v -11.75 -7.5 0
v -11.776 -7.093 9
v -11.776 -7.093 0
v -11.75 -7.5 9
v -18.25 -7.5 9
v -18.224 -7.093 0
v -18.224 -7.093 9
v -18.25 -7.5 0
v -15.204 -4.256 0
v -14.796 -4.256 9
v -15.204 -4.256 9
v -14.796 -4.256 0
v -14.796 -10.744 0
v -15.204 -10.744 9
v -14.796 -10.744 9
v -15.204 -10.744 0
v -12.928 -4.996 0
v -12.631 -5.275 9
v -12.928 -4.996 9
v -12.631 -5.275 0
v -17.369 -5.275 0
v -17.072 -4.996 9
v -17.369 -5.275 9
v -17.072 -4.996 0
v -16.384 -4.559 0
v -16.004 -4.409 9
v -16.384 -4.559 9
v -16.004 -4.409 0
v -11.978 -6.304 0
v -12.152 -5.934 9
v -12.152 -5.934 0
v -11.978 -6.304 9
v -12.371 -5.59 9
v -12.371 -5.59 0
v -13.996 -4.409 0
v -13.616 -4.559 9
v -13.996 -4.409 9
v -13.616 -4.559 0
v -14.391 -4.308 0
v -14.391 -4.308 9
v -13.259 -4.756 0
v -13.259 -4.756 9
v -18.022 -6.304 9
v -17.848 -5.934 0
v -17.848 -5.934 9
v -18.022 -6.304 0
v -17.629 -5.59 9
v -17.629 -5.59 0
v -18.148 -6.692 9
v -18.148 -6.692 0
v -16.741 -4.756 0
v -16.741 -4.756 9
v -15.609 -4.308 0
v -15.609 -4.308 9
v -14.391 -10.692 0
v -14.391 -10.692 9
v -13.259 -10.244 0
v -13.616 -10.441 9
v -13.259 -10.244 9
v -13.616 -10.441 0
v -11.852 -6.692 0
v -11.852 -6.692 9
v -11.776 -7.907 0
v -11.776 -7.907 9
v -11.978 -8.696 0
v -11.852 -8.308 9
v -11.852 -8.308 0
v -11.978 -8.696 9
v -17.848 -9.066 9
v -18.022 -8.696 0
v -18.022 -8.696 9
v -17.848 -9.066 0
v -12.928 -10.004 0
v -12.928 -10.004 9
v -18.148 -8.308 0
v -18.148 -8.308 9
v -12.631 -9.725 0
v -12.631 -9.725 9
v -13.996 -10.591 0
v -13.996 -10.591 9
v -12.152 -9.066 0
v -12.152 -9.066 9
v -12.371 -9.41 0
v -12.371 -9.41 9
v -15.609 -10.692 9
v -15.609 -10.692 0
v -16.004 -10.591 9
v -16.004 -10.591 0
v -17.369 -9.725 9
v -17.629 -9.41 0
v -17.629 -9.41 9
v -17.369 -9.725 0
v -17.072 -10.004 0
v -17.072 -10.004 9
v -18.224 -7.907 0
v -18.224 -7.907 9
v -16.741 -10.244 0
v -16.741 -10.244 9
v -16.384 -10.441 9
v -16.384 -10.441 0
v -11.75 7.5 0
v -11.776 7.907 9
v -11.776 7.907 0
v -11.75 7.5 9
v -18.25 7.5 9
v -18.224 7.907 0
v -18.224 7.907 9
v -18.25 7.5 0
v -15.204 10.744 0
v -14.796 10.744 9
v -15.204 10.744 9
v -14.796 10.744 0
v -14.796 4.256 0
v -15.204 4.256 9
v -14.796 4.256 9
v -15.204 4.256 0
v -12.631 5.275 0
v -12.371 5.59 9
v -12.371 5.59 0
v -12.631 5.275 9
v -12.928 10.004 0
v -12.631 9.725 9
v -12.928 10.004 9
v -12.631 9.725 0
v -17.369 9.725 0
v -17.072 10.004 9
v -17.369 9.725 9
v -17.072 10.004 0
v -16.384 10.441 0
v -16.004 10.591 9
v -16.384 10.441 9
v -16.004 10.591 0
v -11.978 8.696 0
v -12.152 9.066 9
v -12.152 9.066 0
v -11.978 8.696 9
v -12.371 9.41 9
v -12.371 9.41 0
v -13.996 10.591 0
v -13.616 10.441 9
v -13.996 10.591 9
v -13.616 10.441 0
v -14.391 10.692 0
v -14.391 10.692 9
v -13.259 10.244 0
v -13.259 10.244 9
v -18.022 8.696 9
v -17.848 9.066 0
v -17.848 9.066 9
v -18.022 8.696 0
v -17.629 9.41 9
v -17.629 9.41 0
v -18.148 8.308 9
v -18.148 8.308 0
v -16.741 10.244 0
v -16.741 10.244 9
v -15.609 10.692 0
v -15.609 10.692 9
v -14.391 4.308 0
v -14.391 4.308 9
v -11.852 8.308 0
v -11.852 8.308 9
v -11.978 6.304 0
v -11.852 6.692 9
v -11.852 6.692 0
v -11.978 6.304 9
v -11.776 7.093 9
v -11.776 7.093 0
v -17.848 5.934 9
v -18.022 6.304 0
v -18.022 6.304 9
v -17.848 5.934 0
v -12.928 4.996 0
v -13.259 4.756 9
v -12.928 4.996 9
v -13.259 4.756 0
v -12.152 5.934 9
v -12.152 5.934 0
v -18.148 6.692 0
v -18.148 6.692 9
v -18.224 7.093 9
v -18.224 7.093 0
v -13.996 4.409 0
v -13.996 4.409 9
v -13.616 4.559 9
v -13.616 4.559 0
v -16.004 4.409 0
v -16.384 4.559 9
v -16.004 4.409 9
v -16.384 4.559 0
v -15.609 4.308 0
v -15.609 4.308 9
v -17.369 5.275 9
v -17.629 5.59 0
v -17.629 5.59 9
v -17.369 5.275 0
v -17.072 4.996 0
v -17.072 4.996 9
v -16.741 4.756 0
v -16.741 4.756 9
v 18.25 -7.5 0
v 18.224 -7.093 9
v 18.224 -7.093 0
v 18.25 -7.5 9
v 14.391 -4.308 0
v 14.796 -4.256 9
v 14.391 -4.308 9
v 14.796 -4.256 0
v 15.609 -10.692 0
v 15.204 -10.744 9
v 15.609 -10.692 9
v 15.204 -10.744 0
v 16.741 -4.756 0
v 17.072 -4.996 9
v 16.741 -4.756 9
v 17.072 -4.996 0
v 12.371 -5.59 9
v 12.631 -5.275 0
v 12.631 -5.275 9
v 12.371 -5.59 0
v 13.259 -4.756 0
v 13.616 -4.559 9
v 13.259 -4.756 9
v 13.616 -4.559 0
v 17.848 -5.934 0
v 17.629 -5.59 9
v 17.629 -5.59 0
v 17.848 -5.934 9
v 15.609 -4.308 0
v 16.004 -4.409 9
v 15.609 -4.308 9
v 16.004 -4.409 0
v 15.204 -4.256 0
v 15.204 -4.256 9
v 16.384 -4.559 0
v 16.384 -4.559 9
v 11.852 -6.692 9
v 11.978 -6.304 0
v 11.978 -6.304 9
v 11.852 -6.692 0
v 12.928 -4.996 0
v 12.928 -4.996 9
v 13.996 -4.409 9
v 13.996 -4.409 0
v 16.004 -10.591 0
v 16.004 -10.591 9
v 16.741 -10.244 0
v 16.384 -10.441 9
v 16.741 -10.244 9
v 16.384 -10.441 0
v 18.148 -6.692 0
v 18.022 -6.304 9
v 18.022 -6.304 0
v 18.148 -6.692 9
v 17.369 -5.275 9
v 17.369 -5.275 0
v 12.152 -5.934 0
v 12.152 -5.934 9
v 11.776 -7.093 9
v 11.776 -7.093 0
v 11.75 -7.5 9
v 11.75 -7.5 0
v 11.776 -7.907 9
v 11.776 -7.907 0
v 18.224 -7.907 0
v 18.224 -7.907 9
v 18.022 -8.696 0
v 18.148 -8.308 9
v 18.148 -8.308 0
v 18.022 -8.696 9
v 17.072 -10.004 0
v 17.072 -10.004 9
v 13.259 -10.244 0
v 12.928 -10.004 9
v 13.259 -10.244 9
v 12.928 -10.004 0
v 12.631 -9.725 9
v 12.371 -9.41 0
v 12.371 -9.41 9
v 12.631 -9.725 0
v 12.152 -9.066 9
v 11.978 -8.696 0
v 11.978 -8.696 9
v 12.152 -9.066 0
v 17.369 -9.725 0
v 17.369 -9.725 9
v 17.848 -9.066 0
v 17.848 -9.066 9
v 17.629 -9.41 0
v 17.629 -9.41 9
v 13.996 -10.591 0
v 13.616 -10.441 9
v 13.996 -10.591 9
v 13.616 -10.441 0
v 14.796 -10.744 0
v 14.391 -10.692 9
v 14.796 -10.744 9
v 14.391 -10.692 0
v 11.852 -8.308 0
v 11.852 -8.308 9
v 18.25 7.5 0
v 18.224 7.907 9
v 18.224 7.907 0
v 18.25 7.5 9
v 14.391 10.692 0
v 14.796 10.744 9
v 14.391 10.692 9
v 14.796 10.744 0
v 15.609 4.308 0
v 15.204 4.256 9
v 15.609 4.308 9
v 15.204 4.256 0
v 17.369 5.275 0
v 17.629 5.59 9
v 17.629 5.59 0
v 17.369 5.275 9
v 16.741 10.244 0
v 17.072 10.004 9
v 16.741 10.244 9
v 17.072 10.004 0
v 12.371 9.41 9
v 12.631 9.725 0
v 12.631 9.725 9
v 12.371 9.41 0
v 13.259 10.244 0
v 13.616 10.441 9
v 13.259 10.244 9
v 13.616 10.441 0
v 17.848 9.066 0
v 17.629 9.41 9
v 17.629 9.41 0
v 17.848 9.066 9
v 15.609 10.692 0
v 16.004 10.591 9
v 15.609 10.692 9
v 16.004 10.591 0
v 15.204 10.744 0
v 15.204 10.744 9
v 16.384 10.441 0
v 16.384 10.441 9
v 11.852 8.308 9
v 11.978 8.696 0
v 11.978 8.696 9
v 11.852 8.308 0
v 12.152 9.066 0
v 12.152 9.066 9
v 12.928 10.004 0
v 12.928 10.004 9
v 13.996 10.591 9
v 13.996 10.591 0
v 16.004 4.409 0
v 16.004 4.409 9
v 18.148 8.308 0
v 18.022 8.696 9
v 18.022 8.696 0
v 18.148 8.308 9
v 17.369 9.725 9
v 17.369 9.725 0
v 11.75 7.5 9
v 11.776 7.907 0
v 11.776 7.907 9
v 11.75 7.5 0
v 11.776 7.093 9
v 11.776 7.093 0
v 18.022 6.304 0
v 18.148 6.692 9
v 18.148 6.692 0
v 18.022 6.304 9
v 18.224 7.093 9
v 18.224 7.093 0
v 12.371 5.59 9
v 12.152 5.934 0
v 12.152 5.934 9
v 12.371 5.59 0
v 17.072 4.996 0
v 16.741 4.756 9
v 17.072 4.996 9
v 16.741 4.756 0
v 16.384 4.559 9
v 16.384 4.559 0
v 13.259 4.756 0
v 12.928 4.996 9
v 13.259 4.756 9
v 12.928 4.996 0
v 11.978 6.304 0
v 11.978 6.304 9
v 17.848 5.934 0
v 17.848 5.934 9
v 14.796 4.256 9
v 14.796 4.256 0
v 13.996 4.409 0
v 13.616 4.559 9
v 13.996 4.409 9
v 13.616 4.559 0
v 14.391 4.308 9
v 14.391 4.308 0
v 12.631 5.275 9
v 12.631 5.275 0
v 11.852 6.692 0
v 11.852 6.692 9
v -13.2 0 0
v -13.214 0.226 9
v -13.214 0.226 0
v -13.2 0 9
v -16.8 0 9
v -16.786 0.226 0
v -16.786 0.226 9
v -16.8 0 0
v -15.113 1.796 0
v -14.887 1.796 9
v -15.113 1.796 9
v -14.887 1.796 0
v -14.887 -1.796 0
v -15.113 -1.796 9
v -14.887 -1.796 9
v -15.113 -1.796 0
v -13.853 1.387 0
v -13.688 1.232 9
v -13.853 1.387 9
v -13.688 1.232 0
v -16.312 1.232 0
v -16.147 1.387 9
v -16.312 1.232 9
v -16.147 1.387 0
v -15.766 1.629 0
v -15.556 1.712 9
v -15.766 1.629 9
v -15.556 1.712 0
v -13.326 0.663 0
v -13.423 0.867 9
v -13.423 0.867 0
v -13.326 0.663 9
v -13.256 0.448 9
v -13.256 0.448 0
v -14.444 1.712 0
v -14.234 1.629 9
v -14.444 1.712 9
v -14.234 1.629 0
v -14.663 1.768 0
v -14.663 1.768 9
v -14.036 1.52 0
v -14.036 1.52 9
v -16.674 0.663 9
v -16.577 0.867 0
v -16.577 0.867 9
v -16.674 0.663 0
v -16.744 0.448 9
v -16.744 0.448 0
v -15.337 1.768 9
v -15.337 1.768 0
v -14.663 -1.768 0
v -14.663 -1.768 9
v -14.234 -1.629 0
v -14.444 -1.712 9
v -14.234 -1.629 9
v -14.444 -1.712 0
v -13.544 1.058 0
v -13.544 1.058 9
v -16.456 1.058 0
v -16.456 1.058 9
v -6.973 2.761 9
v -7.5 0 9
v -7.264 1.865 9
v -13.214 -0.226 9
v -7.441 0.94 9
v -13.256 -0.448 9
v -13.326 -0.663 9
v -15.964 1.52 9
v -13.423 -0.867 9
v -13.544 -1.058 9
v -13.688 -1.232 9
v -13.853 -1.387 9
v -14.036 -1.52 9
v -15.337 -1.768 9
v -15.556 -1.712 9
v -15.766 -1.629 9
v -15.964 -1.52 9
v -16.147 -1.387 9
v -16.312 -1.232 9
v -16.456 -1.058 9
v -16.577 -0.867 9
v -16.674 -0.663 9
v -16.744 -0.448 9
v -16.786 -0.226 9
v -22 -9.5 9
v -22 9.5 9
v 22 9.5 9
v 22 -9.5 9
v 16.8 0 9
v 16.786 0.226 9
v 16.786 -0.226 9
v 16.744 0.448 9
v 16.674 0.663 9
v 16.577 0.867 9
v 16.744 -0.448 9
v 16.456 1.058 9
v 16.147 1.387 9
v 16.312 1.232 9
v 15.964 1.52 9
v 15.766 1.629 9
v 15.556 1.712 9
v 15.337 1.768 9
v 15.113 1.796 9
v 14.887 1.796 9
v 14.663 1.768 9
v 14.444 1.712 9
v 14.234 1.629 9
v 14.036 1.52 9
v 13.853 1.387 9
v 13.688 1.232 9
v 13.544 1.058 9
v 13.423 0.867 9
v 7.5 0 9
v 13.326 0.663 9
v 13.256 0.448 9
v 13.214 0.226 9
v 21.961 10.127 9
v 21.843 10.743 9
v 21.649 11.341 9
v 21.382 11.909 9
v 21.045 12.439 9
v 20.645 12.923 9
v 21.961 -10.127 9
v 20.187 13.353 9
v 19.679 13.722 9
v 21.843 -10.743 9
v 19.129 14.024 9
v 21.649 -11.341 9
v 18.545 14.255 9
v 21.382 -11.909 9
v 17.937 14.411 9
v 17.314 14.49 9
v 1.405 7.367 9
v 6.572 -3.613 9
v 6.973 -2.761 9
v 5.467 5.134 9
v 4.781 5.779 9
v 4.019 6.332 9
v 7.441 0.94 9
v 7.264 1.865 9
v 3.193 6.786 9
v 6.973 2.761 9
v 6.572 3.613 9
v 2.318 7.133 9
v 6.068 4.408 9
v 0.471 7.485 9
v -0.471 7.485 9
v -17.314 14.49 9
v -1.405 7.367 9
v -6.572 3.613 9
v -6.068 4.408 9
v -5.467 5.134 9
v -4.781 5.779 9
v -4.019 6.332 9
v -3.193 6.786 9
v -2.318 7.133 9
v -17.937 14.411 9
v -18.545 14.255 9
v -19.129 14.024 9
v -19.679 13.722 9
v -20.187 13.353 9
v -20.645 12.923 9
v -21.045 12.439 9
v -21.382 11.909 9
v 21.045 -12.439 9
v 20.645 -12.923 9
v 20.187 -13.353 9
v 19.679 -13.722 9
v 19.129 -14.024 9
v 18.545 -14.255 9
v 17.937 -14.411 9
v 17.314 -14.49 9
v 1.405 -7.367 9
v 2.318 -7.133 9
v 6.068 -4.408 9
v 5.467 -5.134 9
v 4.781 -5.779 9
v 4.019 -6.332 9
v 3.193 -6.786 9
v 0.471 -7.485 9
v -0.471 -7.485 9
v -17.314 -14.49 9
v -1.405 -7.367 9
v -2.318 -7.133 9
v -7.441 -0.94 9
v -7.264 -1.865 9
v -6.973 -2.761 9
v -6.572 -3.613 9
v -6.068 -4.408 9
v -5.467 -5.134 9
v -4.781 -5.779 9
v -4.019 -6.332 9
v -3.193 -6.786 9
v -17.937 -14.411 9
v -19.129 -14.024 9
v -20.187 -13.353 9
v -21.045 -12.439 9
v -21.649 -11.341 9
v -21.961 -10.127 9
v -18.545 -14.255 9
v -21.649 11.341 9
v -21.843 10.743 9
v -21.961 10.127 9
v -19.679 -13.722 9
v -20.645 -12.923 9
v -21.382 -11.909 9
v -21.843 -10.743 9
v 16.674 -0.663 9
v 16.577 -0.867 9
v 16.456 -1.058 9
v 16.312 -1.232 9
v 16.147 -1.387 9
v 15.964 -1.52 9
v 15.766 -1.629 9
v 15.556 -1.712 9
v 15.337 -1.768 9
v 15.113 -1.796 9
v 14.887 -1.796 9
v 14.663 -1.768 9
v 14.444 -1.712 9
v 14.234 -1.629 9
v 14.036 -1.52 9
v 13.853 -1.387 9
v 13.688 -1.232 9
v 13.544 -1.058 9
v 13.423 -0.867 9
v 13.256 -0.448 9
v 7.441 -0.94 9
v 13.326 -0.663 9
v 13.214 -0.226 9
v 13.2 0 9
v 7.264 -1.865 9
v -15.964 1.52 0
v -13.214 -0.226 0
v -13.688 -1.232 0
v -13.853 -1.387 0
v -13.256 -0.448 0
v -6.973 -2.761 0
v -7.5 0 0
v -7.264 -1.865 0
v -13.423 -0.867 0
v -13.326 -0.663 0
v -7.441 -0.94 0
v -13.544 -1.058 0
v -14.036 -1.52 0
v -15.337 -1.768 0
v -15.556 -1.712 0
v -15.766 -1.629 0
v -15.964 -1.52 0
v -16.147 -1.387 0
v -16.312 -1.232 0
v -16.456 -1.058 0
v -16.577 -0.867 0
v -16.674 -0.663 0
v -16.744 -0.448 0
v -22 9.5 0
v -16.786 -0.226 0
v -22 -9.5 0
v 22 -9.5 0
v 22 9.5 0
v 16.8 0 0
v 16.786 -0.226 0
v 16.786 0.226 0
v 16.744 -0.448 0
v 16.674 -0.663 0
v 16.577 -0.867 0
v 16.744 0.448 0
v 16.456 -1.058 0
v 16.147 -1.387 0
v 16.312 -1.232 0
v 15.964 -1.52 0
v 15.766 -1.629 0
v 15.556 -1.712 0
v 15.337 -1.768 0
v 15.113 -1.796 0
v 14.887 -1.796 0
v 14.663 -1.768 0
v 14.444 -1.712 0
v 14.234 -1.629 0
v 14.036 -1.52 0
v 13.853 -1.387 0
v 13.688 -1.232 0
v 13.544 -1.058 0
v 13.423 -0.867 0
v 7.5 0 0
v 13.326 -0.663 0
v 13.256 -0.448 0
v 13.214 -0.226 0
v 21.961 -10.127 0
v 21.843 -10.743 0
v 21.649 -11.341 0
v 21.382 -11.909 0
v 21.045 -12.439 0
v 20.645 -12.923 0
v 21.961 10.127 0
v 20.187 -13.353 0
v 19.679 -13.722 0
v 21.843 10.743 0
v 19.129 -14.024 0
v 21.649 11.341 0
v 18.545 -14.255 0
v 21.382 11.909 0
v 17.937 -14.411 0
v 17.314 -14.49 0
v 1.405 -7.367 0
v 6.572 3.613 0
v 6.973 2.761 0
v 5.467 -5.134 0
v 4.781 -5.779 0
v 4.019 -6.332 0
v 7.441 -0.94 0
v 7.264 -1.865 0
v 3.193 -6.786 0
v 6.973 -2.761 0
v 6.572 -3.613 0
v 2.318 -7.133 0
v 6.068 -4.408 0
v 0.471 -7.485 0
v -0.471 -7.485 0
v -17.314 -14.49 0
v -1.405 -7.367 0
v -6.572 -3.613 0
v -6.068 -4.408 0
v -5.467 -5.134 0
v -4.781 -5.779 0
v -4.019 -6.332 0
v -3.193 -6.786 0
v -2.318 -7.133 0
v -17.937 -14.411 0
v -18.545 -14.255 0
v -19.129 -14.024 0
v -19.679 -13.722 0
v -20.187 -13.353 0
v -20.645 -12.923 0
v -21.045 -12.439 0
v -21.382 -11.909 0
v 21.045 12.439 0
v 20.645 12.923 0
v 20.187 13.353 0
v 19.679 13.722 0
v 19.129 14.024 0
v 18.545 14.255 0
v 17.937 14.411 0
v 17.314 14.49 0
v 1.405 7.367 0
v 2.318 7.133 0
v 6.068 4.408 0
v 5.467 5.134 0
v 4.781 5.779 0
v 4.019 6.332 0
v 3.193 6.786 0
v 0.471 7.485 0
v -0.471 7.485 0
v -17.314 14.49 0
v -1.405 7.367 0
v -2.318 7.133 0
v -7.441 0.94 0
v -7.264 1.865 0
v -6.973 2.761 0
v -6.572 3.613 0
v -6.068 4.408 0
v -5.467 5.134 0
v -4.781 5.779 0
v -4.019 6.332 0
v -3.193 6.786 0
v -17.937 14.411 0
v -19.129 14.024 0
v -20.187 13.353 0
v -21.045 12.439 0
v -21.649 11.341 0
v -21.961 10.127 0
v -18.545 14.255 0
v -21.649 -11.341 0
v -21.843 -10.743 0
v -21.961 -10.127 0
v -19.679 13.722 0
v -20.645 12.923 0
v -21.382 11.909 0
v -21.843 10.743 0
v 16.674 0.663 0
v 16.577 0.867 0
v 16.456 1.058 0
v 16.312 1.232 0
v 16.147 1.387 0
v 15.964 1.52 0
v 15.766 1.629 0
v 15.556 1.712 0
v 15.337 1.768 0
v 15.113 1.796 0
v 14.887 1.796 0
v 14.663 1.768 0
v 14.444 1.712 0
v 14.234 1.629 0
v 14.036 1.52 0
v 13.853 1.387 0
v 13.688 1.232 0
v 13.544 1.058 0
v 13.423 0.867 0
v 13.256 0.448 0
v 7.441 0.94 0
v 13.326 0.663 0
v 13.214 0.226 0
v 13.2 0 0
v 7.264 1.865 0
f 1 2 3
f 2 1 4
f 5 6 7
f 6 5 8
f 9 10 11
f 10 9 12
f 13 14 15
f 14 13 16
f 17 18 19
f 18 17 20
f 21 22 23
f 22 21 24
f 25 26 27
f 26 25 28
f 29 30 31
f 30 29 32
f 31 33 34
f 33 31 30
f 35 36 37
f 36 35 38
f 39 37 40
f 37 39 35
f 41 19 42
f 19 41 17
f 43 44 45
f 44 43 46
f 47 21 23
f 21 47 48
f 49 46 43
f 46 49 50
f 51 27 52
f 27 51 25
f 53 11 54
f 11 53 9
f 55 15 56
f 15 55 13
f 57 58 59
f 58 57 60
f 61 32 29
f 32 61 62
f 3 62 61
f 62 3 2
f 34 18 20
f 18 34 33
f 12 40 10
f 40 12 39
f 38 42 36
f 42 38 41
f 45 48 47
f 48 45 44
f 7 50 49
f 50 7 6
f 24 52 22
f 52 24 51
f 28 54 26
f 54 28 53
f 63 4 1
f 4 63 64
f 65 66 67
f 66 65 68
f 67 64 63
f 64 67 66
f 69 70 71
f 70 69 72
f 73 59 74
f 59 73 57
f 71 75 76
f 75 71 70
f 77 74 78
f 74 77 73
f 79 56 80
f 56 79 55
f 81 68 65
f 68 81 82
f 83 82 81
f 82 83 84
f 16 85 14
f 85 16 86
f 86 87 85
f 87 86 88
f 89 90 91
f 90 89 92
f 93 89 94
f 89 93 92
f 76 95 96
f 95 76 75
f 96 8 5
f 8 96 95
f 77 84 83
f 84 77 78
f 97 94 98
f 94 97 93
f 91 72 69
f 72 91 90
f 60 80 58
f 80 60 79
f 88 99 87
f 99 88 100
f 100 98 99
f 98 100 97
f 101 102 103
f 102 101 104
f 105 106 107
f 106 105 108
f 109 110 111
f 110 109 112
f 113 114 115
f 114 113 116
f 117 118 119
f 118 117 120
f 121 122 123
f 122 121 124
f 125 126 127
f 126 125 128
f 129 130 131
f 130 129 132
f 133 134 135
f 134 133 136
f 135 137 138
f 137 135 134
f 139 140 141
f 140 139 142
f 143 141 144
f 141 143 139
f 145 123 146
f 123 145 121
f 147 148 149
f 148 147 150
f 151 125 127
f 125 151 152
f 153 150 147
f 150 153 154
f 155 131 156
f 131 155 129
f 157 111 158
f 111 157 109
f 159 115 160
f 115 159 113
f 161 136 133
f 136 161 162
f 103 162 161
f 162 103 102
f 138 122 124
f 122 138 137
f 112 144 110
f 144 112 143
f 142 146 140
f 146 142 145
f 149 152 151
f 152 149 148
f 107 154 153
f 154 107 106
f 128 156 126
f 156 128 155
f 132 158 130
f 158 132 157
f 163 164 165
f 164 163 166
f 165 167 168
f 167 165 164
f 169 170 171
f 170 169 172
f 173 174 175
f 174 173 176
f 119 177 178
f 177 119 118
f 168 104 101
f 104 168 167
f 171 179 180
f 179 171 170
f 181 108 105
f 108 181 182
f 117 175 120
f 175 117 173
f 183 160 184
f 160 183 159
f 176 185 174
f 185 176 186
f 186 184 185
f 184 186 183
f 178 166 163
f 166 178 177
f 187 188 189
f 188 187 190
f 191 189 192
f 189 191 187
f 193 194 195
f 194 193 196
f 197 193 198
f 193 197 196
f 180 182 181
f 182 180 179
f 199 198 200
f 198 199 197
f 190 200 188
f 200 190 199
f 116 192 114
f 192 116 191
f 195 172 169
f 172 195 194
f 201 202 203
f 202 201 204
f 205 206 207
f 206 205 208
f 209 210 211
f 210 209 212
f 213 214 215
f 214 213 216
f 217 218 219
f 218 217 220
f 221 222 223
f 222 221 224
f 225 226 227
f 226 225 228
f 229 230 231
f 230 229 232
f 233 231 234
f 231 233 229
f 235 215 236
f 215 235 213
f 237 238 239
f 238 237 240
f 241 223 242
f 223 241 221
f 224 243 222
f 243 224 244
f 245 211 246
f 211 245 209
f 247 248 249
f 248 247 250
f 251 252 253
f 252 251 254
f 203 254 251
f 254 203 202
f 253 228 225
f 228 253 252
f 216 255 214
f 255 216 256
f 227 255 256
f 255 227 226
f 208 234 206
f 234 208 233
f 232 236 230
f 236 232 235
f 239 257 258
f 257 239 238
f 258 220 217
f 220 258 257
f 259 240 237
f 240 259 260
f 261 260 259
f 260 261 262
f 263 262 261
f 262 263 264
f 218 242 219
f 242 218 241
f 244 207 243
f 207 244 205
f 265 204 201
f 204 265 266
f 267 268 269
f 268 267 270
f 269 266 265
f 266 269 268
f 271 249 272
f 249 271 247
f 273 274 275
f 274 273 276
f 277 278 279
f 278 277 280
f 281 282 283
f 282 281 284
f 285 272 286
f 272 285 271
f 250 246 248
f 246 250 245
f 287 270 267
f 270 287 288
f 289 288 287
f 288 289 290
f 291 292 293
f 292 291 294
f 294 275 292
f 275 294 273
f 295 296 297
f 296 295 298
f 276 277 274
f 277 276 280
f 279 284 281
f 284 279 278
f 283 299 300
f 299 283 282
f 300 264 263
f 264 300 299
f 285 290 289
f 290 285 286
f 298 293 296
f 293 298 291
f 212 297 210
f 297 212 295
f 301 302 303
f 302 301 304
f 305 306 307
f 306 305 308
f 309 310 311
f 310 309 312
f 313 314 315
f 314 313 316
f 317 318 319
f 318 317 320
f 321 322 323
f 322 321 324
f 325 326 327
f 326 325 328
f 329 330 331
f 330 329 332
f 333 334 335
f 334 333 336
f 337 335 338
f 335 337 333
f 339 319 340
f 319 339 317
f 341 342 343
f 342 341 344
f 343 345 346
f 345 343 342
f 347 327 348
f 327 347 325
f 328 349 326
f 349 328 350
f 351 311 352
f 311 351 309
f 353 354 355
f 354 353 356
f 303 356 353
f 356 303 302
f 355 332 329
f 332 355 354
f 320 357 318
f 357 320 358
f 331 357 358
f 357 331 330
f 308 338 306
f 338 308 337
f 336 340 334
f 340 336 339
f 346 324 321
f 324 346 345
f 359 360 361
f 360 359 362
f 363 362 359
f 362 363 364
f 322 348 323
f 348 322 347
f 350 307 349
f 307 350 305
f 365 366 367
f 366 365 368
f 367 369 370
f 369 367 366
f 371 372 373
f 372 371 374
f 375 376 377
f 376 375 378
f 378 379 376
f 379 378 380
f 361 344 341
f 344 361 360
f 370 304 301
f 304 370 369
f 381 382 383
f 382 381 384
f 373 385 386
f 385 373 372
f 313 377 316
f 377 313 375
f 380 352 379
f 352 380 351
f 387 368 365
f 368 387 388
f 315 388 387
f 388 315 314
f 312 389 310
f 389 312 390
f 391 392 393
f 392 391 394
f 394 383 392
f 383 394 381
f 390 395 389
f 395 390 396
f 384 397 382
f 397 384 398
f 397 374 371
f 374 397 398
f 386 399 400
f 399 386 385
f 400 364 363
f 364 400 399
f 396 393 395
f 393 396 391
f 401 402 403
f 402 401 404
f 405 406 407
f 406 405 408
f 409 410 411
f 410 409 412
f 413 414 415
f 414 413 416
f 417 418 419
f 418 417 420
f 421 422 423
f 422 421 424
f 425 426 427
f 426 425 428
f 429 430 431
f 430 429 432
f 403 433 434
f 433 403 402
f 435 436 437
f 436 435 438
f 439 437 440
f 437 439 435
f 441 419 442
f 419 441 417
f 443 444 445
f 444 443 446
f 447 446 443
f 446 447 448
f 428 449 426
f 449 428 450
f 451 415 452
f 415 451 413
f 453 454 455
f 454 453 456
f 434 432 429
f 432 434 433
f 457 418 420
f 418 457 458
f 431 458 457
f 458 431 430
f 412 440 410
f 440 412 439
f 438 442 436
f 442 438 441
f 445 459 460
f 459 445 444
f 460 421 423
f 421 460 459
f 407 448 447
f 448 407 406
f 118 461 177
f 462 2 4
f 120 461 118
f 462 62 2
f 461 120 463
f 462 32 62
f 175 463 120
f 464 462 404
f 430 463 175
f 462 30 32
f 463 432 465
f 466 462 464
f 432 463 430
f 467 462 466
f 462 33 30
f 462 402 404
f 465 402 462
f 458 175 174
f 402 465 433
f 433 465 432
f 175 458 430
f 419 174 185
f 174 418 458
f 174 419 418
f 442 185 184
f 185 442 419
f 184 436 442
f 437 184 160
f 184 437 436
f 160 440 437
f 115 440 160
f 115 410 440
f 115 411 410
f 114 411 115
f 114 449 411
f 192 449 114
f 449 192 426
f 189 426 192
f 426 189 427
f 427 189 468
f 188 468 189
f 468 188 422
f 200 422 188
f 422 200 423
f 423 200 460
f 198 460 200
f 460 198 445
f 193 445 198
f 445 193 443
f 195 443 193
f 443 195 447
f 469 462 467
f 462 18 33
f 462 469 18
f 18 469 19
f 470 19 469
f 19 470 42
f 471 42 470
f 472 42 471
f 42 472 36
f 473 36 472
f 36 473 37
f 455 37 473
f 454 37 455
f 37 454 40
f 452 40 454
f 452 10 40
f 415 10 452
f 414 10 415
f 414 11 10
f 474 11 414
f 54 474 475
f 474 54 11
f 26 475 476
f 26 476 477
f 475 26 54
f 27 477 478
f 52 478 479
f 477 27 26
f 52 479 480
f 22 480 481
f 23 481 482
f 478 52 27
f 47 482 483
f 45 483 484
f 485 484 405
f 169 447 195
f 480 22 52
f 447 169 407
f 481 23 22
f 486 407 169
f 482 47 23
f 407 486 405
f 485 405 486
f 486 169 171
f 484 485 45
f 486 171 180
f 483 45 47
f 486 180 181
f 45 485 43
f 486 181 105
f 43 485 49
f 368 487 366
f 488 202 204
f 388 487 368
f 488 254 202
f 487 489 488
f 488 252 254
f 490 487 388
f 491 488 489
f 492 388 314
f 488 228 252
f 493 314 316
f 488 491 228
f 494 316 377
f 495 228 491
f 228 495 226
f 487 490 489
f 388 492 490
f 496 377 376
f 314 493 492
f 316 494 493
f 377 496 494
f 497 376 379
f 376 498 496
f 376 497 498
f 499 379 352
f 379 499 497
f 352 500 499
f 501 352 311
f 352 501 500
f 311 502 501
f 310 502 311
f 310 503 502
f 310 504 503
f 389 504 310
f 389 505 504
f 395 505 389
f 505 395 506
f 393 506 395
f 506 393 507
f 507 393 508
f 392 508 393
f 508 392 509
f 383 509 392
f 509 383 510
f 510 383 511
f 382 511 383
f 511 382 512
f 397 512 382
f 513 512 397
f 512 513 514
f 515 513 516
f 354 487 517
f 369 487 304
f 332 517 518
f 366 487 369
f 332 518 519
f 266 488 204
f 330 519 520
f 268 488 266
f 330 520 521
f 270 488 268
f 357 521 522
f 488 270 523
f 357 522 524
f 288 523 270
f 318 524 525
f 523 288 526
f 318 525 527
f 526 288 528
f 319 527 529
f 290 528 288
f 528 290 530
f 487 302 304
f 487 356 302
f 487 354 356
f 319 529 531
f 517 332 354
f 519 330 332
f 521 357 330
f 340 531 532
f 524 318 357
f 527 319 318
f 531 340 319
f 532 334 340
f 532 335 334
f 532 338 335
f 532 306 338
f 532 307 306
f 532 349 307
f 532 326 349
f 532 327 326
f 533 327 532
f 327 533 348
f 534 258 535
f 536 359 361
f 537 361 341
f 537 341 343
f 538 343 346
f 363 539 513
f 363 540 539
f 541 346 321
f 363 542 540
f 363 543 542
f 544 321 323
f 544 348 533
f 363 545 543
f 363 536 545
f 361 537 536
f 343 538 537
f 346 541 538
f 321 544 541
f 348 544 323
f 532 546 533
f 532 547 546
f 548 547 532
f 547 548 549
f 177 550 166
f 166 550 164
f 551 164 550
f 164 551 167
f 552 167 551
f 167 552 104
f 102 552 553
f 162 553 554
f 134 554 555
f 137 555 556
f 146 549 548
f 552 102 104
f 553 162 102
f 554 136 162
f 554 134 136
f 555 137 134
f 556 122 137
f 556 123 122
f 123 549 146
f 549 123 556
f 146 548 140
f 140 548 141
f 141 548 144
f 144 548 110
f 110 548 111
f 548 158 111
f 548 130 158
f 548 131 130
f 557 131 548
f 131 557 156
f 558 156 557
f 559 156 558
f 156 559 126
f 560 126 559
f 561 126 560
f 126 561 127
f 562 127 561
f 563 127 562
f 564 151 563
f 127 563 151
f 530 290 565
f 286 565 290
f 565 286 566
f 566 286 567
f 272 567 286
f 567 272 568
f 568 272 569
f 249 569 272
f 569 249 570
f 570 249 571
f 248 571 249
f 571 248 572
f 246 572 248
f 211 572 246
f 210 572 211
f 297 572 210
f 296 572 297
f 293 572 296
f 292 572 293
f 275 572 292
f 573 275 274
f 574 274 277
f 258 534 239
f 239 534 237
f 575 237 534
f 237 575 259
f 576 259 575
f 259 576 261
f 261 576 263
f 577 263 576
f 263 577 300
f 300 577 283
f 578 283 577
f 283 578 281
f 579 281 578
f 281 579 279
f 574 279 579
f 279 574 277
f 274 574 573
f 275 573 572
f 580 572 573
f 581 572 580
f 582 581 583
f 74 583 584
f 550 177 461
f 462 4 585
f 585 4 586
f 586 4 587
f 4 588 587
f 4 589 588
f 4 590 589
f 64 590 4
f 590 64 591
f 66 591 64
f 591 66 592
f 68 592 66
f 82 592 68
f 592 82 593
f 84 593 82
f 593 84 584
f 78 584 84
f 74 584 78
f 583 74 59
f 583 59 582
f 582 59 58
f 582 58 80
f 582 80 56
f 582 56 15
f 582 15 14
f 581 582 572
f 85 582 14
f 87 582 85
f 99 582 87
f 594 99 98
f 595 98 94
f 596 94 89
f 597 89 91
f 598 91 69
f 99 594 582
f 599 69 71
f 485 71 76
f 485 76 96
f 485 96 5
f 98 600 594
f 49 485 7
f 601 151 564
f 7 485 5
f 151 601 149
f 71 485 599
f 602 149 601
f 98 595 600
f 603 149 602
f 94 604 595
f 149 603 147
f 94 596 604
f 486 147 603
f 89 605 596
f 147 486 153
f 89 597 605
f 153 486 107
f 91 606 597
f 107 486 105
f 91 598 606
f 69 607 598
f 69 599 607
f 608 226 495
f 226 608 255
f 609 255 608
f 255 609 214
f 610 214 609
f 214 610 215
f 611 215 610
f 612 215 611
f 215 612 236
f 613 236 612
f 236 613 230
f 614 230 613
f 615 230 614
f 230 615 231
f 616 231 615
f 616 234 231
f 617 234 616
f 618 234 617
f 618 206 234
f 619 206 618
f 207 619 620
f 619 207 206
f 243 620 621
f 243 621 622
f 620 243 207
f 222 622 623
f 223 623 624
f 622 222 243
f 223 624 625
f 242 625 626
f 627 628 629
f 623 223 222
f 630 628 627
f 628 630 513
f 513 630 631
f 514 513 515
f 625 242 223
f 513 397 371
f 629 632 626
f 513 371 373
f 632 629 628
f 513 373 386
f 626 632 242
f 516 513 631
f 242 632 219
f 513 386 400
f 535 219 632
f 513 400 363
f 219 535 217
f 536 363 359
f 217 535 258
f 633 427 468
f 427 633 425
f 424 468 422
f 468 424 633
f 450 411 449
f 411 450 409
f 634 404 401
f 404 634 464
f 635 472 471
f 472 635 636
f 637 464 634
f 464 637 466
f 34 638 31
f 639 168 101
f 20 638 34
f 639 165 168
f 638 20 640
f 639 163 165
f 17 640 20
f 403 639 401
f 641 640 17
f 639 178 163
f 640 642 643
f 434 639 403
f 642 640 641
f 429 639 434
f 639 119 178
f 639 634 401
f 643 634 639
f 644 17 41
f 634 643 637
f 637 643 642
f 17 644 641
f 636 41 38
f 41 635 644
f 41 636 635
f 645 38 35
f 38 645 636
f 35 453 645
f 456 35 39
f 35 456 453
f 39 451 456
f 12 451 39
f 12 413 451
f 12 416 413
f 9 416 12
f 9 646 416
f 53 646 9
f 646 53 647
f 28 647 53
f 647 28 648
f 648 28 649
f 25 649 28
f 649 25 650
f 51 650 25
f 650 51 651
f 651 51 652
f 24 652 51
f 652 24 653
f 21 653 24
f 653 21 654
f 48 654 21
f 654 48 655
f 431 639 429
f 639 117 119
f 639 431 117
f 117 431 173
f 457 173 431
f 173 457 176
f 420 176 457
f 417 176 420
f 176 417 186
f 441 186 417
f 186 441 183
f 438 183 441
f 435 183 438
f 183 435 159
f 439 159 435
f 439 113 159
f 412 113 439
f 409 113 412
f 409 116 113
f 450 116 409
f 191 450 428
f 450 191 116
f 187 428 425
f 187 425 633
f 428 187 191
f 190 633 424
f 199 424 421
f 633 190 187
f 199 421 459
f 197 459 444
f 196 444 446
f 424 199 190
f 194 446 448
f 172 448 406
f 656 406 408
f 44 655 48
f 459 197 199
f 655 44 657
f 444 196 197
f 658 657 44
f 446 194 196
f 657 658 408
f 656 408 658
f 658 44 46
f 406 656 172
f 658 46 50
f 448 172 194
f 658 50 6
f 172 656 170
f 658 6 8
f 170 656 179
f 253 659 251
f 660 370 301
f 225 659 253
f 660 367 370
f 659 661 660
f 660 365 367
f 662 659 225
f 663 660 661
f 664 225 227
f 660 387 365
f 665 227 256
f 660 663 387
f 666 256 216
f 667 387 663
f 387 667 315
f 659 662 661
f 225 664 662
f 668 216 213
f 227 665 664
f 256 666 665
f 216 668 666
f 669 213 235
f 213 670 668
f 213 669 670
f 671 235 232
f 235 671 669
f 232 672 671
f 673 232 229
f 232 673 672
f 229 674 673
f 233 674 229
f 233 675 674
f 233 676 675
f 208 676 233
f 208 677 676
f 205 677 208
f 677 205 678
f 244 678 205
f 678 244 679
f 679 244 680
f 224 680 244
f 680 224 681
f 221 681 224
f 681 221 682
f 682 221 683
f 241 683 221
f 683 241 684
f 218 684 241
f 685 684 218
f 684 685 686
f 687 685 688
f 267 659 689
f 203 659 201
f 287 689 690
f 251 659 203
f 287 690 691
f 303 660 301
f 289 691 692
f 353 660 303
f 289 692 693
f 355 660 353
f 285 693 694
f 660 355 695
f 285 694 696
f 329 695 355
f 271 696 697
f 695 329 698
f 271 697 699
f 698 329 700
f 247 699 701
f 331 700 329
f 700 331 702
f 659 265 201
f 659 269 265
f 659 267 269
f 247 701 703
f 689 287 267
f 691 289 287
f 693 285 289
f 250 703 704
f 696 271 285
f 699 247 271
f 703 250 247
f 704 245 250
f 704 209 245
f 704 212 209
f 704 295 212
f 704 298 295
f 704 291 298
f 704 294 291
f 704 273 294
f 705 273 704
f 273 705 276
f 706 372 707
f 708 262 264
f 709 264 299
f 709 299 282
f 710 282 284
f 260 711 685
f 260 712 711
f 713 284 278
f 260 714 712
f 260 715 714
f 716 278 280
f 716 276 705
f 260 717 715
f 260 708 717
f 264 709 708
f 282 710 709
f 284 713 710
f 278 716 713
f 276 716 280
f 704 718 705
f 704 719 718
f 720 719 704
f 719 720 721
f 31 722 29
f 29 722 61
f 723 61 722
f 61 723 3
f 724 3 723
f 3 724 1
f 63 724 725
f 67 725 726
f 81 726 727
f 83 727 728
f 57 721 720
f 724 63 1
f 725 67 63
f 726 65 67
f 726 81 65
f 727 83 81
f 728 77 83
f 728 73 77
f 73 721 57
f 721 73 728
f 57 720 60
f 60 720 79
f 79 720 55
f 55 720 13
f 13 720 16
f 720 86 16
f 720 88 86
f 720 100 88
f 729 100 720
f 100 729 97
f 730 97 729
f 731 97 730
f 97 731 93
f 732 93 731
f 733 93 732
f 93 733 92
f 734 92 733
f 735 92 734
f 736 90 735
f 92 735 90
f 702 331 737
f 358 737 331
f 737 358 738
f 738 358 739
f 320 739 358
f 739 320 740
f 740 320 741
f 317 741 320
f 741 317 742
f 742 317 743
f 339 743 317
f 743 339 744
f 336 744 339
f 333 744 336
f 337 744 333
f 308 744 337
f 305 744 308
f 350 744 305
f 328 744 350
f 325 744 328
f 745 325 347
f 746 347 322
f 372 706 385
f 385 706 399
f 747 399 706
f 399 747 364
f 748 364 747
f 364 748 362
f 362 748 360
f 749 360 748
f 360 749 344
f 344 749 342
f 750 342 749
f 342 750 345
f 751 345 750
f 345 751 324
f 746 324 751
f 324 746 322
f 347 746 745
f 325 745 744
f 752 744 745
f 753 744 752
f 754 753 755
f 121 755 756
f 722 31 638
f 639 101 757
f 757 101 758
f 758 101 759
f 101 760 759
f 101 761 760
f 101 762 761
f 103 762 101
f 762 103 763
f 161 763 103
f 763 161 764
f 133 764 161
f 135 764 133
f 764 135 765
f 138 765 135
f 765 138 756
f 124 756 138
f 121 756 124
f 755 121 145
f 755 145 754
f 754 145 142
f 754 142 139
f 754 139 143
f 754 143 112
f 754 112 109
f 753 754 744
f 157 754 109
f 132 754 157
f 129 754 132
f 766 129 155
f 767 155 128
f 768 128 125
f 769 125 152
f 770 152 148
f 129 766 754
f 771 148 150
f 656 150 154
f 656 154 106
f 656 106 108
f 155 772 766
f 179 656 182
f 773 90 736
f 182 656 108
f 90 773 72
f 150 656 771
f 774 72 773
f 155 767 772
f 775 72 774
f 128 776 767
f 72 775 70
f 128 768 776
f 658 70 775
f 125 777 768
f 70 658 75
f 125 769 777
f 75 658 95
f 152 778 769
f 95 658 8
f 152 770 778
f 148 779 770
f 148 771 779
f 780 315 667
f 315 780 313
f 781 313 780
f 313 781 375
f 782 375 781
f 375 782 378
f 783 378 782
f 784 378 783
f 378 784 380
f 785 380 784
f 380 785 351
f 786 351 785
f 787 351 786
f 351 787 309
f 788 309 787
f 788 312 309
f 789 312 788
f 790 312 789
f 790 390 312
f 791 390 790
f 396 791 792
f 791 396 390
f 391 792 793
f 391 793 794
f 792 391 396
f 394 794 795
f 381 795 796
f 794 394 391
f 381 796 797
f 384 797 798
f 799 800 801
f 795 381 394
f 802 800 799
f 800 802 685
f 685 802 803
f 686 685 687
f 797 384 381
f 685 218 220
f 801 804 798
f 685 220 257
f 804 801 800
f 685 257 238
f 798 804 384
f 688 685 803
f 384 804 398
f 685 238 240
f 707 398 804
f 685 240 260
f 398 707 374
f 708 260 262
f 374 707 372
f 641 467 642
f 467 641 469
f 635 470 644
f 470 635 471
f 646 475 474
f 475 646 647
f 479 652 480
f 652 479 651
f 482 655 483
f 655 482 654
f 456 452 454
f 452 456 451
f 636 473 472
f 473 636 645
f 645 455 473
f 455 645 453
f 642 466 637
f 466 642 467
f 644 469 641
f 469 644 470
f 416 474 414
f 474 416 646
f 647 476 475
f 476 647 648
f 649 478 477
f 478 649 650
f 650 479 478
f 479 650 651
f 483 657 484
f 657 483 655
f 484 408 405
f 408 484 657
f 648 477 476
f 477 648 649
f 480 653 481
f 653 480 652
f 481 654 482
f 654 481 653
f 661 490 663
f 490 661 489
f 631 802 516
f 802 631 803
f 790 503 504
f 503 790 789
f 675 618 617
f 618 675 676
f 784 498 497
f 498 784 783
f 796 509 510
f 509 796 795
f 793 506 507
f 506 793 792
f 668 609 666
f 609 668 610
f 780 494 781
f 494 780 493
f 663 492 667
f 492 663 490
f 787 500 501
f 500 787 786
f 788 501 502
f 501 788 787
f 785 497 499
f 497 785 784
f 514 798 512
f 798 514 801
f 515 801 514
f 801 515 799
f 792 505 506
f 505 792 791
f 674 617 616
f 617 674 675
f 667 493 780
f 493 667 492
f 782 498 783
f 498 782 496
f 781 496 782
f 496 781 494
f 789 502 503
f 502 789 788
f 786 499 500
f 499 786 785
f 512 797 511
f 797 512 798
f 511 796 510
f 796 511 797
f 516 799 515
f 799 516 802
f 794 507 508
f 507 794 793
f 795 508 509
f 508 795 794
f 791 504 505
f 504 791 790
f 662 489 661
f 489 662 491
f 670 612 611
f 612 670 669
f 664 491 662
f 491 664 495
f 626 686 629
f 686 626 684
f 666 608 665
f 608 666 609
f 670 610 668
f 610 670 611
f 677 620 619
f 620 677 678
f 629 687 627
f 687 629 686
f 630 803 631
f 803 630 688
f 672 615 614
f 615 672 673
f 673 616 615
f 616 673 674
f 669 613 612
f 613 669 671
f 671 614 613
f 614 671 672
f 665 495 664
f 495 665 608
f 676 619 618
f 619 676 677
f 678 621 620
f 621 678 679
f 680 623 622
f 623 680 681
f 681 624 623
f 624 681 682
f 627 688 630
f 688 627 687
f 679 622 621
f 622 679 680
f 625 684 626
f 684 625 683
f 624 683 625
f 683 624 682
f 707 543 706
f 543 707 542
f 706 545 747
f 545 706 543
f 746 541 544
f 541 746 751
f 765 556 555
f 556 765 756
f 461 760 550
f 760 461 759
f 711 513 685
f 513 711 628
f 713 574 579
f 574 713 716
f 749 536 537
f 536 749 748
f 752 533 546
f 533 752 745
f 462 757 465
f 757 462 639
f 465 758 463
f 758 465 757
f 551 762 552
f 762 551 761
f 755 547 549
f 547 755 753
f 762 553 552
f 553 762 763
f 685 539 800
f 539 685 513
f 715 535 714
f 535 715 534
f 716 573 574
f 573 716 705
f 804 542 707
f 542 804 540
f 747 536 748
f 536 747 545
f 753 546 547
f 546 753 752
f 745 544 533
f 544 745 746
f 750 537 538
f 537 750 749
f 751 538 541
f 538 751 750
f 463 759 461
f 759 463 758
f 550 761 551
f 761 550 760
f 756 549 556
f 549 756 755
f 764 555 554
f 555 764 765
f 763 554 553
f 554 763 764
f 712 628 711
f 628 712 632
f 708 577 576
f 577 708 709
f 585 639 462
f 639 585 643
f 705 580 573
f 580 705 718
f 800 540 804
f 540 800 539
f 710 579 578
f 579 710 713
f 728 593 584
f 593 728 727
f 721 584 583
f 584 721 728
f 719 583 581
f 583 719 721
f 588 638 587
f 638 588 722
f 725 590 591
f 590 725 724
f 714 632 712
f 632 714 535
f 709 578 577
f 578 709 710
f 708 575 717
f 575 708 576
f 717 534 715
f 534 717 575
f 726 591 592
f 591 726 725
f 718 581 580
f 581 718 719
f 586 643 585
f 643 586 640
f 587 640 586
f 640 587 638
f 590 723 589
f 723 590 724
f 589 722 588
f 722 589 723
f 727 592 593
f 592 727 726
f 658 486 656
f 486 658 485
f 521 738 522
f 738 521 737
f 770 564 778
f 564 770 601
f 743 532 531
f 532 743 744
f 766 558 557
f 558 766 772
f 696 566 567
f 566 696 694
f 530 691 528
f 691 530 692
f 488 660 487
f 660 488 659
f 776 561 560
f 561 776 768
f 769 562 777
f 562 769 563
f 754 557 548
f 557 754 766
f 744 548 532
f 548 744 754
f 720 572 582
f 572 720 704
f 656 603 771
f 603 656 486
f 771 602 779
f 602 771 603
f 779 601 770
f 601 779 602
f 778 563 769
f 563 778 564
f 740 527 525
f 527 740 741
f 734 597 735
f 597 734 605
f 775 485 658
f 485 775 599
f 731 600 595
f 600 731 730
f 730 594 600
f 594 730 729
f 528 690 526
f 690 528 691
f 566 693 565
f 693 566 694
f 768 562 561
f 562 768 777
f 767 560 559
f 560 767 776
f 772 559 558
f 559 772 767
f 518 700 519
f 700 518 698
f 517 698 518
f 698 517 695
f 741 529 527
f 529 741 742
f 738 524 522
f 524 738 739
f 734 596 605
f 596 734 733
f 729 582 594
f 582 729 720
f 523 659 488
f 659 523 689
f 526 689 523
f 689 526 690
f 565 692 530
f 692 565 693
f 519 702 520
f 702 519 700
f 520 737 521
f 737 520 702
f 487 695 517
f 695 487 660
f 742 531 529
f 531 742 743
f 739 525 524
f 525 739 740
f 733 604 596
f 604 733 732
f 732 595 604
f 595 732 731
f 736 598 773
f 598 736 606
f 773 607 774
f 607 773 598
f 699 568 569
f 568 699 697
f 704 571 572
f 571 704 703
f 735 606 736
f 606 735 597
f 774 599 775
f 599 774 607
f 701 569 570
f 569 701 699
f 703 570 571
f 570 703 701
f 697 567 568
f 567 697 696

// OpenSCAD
$fn = 50;


difference() {
	union() {
		hull() {
			translate(v = [-17.0000000000, 9.5000000000, 0]) {
				cylinder(h = 9, r = 5);
			}
			translate(v = [17.0000000000, 9.5000000000, 0]) {
				cylinder(h = 9, r = 5);
			}
			translate(v = [-17.0000000000, -9.5000000000, 0]) {
				cylinder(h = 9, r = 5);
			}
			translate(v = [17.0000000000, -9.5000000000, 0]) {
				cylinder(h = 9, r = 5);
			}
		}
	}
	union() {
		#translate(v = [-15.0000000000, -7.5000000000, 0]) {
			cylinder(h = 9, r = 3.2500000000);
		}
		#translate(v = [-15.0000000000, 7.5000000000, 0]) {
			cylinder(h = 9, r = 3.2500000000);
		}
		#translate(v = [15.0000000000, -7.5000000000, 0]) {
			cylinder(h = 9, r = 3.2500000000);
		}
		#translate(v = [15.0000000000, 7.5000000000, 0]) {
			cylinder(h = 9, r = 3.2500000000);
		}
		#translate(v = [-15.0000000000, -7.5000000000, -100.0000000000]) {
			cylinder(h = 200, r = 3.2500000000);
		}
		#translate(v = [-15.0000000000, 7.5000000000, -100.0000000000]) {
			cylinder(h = 200, r = 3.2500000000);
		}
		#translate(v = [15.0000000000, -7.5000000000, -100.0000000000]) {
			cylinder(h = 200, r = 3.2500000000);
		}
		#translate(v = [15.0000000000, 7.5000000000, -100.0000000000]) {
			cylinder(h = 200, r = 3.2500000000);
		}
		#translate(v = [-15.0000000000, -7.5000000000, 0]) {
			cylinder(h = 9, r = 1.8000000000);
		}
		#translate(v = [-15.0000000000, 0.0000000000, 0]) {
			cylinder(h = 9, r = 1.8000000000);
		}
		#translate(v = [-15.0000000000, 7.5000000000, 0]) {
			cylinder(h = 9, r = 1.8000000000);
		}
		#translate(v = [15.0000000000, -7.5000000000, 0]) {
			cylinder(h = 9, r = 1.8000000000);
		}
		#translate(v = [15.0000000000, 0.0000000000, 0]) {
			cylinder(h = 9, r = 1.8000000000);
		}
		#translate(v = [15.0000000000, 7.5000000000, 0]) {
			cylinder(h = 9, r = 1.8000000000);
		}
		#translate(v = [-15.0000000000, -7.5000000000, 0]) {
			cylinder(h = 9, r = 1.8000000000);
		}
		#translate(v = [-15.0000000000, 0.0000000000, 0]) {
			cylinder(h = 9, r = 1.8000000000);
		}
		#translate(v = [-15.0000000000, 7.5000000000, 0]) {
			cylinder(h = 9, r = 1.8000000000);
		}
		#translate(v = [15.0000000000, -7.5000000000, 0]) {
			cylinder(h = 9, r = 1.8000000000);
		}
		#translate(v = [15.0000000000, 0.0000000000, 0]) {
			cylinder(h = 9, r = 1.8000000000);
		}
		#translate(v = [15.0000000000, 7.5000000000, 0]) {
			cylinder(h = 9, r = 1.8000000000);
		}
		#translate(v = [-15.0000000000, -7.5000000000, 0]) {
			cylinder(h = 9, r = 1.8000000000);
		}
		#translate(v = [-15.0000000000, 0.0000000000, 0]) {
			cylinder(h = 9, r = 1.8000000000);
		}
		#translate(v = [-15.0000000000, 7.5000000000, 0]) {
			cylinder(h = 9, r = 1.8000000000);
		}
		#translate(v = [15.0000000000, -7.5000000000, 0]) {
			cylinder(h = 9, r = 1.8000000000);
		}
		#translate(v = [15.0000000000, 0.0000000000, 0]) {
			cylinder(h = 9, r = 1.8000000000);
		}
		#translate(v = [15.0000000000, 7.5000000000, 0]) {
			cylinder(h = 9, r = 1.8000000000);
		}
		#cylinder(h = 9, r = 7.5000000000);
	}
}
